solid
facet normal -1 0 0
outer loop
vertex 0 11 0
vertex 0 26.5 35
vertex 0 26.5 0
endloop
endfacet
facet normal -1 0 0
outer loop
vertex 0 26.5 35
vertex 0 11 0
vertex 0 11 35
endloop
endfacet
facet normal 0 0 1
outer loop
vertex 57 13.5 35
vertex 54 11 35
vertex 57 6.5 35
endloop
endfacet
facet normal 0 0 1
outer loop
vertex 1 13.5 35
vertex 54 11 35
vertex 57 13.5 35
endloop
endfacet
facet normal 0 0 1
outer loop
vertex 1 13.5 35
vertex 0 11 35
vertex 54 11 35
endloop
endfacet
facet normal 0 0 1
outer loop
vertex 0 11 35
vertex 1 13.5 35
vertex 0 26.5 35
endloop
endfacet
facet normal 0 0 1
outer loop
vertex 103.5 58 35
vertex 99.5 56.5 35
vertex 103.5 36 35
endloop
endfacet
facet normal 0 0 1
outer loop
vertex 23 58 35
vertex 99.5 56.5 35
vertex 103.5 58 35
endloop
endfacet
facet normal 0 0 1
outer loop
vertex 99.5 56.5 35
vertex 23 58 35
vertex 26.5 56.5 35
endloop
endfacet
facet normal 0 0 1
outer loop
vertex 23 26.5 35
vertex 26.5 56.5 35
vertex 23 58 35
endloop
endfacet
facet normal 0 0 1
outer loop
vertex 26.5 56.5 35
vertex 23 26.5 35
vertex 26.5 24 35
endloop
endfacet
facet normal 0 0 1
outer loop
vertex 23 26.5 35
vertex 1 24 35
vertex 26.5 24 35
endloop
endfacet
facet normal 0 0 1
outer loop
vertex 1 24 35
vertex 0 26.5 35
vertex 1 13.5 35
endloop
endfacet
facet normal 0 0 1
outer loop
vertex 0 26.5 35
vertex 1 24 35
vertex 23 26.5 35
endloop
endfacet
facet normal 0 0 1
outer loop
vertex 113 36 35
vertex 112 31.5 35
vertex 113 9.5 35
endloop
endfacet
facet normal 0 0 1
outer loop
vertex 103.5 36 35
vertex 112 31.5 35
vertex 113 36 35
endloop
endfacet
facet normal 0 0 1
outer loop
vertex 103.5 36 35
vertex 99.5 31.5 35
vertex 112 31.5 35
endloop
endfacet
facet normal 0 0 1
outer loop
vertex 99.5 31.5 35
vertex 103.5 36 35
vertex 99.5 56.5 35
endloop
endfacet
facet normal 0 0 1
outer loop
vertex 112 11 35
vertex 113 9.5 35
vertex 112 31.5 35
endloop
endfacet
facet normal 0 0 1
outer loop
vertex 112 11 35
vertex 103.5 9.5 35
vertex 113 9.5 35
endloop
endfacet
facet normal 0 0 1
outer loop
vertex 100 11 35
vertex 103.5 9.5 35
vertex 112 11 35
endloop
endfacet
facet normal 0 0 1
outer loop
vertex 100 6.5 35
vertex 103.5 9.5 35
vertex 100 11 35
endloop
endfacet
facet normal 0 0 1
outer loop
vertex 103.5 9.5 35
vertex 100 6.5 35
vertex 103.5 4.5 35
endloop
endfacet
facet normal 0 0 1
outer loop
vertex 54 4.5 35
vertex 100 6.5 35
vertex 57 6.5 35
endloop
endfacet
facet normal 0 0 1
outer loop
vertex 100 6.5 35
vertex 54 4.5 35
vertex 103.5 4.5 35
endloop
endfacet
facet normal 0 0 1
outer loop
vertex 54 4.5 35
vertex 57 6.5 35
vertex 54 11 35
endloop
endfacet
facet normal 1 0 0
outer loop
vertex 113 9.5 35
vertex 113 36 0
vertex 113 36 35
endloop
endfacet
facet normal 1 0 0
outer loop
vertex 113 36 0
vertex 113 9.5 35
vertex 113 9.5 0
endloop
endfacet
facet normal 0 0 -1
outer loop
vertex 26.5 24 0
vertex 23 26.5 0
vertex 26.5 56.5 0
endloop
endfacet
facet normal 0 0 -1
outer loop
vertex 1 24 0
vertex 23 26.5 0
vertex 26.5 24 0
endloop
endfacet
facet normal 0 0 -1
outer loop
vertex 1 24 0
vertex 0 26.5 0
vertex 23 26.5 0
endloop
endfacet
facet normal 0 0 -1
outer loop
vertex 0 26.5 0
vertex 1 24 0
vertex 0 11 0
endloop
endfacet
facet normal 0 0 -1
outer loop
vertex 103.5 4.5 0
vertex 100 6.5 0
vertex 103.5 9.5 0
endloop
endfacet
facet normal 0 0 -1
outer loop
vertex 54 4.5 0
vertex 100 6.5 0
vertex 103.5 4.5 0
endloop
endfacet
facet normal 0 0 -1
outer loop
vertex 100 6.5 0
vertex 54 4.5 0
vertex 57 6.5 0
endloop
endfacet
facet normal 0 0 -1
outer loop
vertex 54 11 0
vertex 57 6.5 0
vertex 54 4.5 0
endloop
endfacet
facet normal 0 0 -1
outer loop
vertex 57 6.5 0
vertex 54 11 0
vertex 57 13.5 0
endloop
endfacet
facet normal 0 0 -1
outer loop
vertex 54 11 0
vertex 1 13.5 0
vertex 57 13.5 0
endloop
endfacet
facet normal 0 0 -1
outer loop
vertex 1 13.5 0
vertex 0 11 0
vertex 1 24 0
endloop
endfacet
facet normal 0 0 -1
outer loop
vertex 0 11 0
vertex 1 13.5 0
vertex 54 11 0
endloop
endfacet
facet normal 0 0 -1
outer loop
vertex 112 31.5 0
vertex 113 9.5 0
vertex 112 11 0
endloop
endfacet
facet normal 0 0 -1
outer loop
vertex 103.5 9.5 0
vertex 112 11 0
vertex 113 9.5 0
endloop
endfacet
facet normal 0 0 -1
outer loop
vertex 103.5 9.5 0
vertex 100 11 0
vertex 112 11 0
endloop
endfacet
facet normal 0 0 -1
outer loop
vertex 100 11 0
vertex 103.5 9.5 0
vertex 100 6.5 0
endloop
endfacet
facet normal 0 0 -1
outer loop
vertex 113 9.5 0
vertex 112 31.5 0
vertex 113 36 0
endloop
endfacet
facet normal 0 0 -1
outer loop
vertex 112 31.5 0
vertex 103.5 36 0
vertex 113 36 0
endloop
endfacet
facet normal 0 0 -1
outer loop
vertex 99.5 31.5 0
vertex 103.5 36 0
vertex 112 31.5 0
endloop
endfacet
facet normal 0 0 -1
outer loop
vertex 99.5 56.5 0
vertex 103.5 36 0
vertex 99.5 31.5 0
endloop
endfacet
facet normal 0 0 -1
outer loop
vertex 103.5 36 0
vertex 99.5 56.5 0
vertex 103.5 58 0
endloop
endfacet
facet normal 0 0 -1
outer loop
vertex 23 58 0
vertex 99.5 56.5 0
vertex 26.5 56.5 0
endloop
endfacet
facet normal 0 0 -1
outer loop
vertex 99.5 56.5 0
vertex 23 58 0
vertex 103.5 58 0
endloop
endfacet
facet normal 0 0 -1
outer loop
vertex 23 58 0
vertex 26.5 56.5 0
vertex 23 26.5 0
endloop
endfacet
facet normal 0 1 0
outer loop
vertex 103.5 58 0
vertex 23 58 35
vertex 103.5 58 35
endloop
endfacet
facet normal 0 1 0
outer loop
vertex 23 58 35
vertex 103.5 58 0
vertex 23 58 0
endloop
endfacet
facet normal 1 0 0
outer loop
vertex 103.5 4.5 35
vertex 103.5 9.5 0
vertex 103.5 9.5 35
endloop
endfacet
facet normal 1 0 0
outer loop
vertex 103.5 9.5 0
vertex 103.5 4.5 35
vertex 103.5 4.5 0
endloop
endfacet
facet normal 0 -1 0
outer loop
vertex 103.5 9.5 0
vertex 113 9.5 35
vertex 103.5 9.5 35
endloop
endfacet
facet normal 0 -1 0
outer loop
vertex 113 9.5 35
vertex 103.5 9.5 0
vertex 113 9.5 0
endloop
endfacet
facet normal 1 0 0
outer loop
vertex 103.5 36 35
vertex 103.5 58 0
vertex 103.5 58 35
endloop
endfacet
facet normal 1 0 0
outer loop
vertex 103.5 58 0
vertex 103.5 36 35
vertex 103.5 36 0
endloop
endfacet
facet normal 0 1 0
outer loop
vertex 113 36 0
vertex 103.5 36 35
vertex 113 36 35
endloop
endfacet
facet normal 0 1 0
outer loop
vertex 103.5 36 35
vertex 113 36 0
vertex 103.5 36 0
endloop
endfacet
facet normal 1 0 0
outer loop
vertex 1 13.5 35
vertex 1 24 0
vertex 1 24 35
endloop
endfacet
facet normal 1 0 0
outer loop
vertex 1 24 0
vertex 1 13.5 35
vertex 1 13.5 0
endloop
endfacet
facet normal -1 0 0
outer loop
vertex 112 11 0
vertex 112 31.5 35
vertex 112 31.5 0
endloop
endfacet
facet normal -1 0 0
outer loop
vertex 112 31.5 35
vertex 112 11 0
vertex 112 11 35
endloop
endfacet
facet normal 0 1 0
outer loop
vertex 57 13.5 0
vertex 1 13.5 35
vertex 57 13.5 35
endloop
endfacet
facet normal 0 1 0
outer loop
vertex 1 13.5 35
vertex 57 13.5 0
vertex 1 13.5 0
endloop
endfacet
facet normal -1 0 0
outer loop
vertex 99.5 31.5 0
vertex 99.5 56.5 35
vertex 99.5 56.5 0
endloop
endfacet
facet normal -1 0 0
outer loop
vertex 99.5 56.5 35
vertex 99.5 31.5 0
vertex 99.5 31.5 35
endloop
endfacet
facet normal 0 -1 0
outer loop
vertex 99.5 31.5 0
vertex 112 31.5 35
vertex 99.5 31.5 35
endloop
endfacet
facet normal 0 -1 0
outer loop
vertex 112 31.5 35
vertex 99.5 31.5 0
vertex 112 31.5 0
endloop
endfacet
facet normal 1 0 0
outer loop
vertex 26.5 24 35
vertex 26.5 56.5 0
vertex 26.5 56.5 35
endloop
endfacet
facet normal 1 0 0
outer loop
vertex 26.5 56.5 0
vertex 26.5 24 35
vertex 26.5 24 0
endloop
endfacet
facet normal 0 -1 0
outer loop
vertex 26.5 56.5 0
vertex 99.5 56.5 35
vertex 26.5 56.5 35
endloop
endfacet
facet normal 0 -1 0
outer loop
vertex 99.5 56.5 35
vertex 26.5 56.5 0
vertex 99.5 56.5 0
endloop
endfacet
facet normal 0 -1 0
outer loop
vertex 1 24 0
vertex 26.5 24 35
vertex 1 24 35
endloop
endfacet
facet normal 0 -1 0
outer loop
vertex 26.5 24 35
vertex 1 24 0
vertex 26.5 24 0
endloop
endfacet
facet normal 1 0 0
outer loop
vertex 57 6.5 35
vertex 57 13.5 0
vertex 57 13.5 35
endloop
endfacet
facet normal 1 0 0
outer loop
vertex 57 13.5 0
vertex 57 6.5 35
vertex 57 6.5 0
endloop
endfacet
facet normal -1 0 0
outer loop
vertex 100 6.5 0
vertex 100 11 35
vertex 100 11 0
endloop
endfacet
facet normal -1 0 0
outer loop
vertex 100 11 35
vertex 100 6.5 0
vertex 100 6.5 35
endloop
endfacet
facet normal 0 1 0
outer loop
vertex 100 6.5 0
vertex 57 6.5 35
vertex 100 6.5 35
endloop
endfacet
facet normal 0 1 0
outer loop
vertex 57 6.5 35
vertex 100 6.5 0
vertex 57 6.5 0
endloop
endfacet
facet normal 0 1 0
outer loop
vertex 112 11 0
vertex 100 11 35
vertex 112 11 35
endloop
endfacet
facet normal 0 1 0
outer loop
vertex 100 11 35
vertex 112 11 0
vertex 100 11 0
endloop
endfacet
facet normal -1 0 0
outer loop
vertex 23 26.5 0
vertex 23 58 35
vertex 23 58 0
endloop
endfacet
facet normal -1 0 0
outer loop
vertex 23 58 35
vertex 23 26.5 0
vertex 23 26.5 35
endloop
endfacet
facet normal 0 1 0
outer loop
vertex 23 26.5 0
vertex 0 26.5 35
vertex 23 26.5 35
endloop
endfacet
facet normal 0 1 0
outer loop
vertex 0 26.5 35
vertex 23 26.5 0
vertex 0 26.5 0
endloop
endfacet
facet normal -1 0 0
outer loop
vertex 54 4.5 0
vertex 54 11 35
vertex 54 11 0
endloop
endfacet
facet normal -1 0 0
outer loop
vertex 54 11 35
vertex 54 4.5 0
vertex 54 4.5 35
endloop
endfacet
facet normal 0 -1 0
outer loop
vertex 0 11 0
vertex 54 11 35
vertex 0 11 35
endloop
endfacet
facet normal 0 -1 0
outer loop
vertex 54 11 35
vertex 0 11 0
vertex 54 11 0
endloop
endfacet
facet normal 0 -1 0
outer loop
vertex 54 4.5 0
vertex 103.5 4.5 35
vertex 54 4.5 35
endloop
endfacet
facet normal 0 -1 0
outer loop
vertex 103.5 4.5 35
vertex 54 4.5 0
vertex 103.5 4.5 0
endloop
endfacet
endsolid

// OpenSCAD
//Rozmery kovové krabicky vnitrni
krabicka_x=113;
krabicka_y=58;
krabicka_z2=35;  //35

krabicka_otvor_hrana=9.5;

//Rozmery casty modulu
pcb_x=111;
pcb_y=6;

baterka_x=73;
baterka_y=37;

konektor_x=12.5;
konektor_y=12;

SD_karta_x=43;
SD_karta_y=13;

SD_karta_mensi_x=12;
SD_karta_mensi_y=8.5;

dioda_x=25.5;
dioda_y=4.5;

SPACEDOS02A_CAD01A(krabicka_z2);


module SPACEDOS02A_CAD01A(krabicka_z1)
    {
    difference(){

        KRABICKA(krabicka_z1);
            translate([1,19.5,-0.5]) 
                MODUL(krabicka_z1);    
                } 
    }
    



module KRABICKA(krabicka_z)
    {
    difference(){
        cube([krabicka_x,krabicka_y,krabicka_z],center=false);

//otvory
        translate([0,0,-0.5]) 
            cube([krabicka_otvor_hrana,krabicka_otvor_hrana,krabicka_z+1],center=false);
    
        translate([krabicka_x-krabicka_otvor_hrana,0,-0.5]) 
            cube([krabicka_otvor_hrana,krabicka_otvor_hrana,krabicka_z+1],center=false);
        
        translate([0,krabicka_y-krabicka_otvor_hrana,-0.5]) 
            cube([krabicka_otvor_hrana,krabicka_otvor_hrana,krabicka_z+1],center=false);
    
        translate([krabicka_x-krabicka_otvor_hrana,krabicka_y-krabicka_otvor_hrana-12-0.5]) 
            cube([krabicka_otvor_hrana,krabicka_otvor_hrana+20,krabicka_z+1],center=false);


                }
    }   


module MODUL(krabicka_z)
    {

    //pcb
    translate([0,-pcb_y,-0.5]) 
        cube([pcb_x,pcb_y,krabicka_z+1],center=false);

    //konektor
    translate([pcb_x-konektor_x,0,-0.5]) 
        cube([konektor_x,konektor_y,krabicka_z+1],center=false);

    //baterka
    translate([pcb_x-konektor_x-baterka_x,0,-0.5]) 
        cube([baterka_x,baterka_y,krabicka_z+1],center=false);

    //dioda
    translate([pcb_x-konektor_x-baterka_x-dioda_x,0,-0.5]) 
        cube([dioda_x,dioda_y,krabicka_z+1],center=false);

    //SD karta
    translate([pcb_x-SD_karta_x-SD_karta_mensi_x,-SD_karta_y,-0.5]) 
        cube([SD_karta_x,SD_karta_y,krabicka_z+1],center=false);
        
    //SD karta mensi otvor
    translate([pcb_x-SD_karta_mensi_x,-SD_karta_mensi_y,-0.5]) 
        cube([SD_karta_mensi_x,SD_karta_mensi_y,krabicka_z+1],center=false);  
     
    //vyrez levy horni
    translate([-2,7,-0.5]) 
       cube([24,60,krabicka_z+1],center=false);  
        
         //vyrez levy dolni
    translate([-2,-21,-0.5]) 
        cube([55,12.5,krabicka_z+1],center=false);  
     
   //vyrez pravy dolni
    translate([-2,-21,-0.5]) 
        cube([krabicka_x+4,6,krabicka_z+1],center=false);     
        
       //vyrez pravy horni
    translate([-2,7,-0.5]) 
       cube([24,60,krabicka_z+1],center=false);    
    
     }
